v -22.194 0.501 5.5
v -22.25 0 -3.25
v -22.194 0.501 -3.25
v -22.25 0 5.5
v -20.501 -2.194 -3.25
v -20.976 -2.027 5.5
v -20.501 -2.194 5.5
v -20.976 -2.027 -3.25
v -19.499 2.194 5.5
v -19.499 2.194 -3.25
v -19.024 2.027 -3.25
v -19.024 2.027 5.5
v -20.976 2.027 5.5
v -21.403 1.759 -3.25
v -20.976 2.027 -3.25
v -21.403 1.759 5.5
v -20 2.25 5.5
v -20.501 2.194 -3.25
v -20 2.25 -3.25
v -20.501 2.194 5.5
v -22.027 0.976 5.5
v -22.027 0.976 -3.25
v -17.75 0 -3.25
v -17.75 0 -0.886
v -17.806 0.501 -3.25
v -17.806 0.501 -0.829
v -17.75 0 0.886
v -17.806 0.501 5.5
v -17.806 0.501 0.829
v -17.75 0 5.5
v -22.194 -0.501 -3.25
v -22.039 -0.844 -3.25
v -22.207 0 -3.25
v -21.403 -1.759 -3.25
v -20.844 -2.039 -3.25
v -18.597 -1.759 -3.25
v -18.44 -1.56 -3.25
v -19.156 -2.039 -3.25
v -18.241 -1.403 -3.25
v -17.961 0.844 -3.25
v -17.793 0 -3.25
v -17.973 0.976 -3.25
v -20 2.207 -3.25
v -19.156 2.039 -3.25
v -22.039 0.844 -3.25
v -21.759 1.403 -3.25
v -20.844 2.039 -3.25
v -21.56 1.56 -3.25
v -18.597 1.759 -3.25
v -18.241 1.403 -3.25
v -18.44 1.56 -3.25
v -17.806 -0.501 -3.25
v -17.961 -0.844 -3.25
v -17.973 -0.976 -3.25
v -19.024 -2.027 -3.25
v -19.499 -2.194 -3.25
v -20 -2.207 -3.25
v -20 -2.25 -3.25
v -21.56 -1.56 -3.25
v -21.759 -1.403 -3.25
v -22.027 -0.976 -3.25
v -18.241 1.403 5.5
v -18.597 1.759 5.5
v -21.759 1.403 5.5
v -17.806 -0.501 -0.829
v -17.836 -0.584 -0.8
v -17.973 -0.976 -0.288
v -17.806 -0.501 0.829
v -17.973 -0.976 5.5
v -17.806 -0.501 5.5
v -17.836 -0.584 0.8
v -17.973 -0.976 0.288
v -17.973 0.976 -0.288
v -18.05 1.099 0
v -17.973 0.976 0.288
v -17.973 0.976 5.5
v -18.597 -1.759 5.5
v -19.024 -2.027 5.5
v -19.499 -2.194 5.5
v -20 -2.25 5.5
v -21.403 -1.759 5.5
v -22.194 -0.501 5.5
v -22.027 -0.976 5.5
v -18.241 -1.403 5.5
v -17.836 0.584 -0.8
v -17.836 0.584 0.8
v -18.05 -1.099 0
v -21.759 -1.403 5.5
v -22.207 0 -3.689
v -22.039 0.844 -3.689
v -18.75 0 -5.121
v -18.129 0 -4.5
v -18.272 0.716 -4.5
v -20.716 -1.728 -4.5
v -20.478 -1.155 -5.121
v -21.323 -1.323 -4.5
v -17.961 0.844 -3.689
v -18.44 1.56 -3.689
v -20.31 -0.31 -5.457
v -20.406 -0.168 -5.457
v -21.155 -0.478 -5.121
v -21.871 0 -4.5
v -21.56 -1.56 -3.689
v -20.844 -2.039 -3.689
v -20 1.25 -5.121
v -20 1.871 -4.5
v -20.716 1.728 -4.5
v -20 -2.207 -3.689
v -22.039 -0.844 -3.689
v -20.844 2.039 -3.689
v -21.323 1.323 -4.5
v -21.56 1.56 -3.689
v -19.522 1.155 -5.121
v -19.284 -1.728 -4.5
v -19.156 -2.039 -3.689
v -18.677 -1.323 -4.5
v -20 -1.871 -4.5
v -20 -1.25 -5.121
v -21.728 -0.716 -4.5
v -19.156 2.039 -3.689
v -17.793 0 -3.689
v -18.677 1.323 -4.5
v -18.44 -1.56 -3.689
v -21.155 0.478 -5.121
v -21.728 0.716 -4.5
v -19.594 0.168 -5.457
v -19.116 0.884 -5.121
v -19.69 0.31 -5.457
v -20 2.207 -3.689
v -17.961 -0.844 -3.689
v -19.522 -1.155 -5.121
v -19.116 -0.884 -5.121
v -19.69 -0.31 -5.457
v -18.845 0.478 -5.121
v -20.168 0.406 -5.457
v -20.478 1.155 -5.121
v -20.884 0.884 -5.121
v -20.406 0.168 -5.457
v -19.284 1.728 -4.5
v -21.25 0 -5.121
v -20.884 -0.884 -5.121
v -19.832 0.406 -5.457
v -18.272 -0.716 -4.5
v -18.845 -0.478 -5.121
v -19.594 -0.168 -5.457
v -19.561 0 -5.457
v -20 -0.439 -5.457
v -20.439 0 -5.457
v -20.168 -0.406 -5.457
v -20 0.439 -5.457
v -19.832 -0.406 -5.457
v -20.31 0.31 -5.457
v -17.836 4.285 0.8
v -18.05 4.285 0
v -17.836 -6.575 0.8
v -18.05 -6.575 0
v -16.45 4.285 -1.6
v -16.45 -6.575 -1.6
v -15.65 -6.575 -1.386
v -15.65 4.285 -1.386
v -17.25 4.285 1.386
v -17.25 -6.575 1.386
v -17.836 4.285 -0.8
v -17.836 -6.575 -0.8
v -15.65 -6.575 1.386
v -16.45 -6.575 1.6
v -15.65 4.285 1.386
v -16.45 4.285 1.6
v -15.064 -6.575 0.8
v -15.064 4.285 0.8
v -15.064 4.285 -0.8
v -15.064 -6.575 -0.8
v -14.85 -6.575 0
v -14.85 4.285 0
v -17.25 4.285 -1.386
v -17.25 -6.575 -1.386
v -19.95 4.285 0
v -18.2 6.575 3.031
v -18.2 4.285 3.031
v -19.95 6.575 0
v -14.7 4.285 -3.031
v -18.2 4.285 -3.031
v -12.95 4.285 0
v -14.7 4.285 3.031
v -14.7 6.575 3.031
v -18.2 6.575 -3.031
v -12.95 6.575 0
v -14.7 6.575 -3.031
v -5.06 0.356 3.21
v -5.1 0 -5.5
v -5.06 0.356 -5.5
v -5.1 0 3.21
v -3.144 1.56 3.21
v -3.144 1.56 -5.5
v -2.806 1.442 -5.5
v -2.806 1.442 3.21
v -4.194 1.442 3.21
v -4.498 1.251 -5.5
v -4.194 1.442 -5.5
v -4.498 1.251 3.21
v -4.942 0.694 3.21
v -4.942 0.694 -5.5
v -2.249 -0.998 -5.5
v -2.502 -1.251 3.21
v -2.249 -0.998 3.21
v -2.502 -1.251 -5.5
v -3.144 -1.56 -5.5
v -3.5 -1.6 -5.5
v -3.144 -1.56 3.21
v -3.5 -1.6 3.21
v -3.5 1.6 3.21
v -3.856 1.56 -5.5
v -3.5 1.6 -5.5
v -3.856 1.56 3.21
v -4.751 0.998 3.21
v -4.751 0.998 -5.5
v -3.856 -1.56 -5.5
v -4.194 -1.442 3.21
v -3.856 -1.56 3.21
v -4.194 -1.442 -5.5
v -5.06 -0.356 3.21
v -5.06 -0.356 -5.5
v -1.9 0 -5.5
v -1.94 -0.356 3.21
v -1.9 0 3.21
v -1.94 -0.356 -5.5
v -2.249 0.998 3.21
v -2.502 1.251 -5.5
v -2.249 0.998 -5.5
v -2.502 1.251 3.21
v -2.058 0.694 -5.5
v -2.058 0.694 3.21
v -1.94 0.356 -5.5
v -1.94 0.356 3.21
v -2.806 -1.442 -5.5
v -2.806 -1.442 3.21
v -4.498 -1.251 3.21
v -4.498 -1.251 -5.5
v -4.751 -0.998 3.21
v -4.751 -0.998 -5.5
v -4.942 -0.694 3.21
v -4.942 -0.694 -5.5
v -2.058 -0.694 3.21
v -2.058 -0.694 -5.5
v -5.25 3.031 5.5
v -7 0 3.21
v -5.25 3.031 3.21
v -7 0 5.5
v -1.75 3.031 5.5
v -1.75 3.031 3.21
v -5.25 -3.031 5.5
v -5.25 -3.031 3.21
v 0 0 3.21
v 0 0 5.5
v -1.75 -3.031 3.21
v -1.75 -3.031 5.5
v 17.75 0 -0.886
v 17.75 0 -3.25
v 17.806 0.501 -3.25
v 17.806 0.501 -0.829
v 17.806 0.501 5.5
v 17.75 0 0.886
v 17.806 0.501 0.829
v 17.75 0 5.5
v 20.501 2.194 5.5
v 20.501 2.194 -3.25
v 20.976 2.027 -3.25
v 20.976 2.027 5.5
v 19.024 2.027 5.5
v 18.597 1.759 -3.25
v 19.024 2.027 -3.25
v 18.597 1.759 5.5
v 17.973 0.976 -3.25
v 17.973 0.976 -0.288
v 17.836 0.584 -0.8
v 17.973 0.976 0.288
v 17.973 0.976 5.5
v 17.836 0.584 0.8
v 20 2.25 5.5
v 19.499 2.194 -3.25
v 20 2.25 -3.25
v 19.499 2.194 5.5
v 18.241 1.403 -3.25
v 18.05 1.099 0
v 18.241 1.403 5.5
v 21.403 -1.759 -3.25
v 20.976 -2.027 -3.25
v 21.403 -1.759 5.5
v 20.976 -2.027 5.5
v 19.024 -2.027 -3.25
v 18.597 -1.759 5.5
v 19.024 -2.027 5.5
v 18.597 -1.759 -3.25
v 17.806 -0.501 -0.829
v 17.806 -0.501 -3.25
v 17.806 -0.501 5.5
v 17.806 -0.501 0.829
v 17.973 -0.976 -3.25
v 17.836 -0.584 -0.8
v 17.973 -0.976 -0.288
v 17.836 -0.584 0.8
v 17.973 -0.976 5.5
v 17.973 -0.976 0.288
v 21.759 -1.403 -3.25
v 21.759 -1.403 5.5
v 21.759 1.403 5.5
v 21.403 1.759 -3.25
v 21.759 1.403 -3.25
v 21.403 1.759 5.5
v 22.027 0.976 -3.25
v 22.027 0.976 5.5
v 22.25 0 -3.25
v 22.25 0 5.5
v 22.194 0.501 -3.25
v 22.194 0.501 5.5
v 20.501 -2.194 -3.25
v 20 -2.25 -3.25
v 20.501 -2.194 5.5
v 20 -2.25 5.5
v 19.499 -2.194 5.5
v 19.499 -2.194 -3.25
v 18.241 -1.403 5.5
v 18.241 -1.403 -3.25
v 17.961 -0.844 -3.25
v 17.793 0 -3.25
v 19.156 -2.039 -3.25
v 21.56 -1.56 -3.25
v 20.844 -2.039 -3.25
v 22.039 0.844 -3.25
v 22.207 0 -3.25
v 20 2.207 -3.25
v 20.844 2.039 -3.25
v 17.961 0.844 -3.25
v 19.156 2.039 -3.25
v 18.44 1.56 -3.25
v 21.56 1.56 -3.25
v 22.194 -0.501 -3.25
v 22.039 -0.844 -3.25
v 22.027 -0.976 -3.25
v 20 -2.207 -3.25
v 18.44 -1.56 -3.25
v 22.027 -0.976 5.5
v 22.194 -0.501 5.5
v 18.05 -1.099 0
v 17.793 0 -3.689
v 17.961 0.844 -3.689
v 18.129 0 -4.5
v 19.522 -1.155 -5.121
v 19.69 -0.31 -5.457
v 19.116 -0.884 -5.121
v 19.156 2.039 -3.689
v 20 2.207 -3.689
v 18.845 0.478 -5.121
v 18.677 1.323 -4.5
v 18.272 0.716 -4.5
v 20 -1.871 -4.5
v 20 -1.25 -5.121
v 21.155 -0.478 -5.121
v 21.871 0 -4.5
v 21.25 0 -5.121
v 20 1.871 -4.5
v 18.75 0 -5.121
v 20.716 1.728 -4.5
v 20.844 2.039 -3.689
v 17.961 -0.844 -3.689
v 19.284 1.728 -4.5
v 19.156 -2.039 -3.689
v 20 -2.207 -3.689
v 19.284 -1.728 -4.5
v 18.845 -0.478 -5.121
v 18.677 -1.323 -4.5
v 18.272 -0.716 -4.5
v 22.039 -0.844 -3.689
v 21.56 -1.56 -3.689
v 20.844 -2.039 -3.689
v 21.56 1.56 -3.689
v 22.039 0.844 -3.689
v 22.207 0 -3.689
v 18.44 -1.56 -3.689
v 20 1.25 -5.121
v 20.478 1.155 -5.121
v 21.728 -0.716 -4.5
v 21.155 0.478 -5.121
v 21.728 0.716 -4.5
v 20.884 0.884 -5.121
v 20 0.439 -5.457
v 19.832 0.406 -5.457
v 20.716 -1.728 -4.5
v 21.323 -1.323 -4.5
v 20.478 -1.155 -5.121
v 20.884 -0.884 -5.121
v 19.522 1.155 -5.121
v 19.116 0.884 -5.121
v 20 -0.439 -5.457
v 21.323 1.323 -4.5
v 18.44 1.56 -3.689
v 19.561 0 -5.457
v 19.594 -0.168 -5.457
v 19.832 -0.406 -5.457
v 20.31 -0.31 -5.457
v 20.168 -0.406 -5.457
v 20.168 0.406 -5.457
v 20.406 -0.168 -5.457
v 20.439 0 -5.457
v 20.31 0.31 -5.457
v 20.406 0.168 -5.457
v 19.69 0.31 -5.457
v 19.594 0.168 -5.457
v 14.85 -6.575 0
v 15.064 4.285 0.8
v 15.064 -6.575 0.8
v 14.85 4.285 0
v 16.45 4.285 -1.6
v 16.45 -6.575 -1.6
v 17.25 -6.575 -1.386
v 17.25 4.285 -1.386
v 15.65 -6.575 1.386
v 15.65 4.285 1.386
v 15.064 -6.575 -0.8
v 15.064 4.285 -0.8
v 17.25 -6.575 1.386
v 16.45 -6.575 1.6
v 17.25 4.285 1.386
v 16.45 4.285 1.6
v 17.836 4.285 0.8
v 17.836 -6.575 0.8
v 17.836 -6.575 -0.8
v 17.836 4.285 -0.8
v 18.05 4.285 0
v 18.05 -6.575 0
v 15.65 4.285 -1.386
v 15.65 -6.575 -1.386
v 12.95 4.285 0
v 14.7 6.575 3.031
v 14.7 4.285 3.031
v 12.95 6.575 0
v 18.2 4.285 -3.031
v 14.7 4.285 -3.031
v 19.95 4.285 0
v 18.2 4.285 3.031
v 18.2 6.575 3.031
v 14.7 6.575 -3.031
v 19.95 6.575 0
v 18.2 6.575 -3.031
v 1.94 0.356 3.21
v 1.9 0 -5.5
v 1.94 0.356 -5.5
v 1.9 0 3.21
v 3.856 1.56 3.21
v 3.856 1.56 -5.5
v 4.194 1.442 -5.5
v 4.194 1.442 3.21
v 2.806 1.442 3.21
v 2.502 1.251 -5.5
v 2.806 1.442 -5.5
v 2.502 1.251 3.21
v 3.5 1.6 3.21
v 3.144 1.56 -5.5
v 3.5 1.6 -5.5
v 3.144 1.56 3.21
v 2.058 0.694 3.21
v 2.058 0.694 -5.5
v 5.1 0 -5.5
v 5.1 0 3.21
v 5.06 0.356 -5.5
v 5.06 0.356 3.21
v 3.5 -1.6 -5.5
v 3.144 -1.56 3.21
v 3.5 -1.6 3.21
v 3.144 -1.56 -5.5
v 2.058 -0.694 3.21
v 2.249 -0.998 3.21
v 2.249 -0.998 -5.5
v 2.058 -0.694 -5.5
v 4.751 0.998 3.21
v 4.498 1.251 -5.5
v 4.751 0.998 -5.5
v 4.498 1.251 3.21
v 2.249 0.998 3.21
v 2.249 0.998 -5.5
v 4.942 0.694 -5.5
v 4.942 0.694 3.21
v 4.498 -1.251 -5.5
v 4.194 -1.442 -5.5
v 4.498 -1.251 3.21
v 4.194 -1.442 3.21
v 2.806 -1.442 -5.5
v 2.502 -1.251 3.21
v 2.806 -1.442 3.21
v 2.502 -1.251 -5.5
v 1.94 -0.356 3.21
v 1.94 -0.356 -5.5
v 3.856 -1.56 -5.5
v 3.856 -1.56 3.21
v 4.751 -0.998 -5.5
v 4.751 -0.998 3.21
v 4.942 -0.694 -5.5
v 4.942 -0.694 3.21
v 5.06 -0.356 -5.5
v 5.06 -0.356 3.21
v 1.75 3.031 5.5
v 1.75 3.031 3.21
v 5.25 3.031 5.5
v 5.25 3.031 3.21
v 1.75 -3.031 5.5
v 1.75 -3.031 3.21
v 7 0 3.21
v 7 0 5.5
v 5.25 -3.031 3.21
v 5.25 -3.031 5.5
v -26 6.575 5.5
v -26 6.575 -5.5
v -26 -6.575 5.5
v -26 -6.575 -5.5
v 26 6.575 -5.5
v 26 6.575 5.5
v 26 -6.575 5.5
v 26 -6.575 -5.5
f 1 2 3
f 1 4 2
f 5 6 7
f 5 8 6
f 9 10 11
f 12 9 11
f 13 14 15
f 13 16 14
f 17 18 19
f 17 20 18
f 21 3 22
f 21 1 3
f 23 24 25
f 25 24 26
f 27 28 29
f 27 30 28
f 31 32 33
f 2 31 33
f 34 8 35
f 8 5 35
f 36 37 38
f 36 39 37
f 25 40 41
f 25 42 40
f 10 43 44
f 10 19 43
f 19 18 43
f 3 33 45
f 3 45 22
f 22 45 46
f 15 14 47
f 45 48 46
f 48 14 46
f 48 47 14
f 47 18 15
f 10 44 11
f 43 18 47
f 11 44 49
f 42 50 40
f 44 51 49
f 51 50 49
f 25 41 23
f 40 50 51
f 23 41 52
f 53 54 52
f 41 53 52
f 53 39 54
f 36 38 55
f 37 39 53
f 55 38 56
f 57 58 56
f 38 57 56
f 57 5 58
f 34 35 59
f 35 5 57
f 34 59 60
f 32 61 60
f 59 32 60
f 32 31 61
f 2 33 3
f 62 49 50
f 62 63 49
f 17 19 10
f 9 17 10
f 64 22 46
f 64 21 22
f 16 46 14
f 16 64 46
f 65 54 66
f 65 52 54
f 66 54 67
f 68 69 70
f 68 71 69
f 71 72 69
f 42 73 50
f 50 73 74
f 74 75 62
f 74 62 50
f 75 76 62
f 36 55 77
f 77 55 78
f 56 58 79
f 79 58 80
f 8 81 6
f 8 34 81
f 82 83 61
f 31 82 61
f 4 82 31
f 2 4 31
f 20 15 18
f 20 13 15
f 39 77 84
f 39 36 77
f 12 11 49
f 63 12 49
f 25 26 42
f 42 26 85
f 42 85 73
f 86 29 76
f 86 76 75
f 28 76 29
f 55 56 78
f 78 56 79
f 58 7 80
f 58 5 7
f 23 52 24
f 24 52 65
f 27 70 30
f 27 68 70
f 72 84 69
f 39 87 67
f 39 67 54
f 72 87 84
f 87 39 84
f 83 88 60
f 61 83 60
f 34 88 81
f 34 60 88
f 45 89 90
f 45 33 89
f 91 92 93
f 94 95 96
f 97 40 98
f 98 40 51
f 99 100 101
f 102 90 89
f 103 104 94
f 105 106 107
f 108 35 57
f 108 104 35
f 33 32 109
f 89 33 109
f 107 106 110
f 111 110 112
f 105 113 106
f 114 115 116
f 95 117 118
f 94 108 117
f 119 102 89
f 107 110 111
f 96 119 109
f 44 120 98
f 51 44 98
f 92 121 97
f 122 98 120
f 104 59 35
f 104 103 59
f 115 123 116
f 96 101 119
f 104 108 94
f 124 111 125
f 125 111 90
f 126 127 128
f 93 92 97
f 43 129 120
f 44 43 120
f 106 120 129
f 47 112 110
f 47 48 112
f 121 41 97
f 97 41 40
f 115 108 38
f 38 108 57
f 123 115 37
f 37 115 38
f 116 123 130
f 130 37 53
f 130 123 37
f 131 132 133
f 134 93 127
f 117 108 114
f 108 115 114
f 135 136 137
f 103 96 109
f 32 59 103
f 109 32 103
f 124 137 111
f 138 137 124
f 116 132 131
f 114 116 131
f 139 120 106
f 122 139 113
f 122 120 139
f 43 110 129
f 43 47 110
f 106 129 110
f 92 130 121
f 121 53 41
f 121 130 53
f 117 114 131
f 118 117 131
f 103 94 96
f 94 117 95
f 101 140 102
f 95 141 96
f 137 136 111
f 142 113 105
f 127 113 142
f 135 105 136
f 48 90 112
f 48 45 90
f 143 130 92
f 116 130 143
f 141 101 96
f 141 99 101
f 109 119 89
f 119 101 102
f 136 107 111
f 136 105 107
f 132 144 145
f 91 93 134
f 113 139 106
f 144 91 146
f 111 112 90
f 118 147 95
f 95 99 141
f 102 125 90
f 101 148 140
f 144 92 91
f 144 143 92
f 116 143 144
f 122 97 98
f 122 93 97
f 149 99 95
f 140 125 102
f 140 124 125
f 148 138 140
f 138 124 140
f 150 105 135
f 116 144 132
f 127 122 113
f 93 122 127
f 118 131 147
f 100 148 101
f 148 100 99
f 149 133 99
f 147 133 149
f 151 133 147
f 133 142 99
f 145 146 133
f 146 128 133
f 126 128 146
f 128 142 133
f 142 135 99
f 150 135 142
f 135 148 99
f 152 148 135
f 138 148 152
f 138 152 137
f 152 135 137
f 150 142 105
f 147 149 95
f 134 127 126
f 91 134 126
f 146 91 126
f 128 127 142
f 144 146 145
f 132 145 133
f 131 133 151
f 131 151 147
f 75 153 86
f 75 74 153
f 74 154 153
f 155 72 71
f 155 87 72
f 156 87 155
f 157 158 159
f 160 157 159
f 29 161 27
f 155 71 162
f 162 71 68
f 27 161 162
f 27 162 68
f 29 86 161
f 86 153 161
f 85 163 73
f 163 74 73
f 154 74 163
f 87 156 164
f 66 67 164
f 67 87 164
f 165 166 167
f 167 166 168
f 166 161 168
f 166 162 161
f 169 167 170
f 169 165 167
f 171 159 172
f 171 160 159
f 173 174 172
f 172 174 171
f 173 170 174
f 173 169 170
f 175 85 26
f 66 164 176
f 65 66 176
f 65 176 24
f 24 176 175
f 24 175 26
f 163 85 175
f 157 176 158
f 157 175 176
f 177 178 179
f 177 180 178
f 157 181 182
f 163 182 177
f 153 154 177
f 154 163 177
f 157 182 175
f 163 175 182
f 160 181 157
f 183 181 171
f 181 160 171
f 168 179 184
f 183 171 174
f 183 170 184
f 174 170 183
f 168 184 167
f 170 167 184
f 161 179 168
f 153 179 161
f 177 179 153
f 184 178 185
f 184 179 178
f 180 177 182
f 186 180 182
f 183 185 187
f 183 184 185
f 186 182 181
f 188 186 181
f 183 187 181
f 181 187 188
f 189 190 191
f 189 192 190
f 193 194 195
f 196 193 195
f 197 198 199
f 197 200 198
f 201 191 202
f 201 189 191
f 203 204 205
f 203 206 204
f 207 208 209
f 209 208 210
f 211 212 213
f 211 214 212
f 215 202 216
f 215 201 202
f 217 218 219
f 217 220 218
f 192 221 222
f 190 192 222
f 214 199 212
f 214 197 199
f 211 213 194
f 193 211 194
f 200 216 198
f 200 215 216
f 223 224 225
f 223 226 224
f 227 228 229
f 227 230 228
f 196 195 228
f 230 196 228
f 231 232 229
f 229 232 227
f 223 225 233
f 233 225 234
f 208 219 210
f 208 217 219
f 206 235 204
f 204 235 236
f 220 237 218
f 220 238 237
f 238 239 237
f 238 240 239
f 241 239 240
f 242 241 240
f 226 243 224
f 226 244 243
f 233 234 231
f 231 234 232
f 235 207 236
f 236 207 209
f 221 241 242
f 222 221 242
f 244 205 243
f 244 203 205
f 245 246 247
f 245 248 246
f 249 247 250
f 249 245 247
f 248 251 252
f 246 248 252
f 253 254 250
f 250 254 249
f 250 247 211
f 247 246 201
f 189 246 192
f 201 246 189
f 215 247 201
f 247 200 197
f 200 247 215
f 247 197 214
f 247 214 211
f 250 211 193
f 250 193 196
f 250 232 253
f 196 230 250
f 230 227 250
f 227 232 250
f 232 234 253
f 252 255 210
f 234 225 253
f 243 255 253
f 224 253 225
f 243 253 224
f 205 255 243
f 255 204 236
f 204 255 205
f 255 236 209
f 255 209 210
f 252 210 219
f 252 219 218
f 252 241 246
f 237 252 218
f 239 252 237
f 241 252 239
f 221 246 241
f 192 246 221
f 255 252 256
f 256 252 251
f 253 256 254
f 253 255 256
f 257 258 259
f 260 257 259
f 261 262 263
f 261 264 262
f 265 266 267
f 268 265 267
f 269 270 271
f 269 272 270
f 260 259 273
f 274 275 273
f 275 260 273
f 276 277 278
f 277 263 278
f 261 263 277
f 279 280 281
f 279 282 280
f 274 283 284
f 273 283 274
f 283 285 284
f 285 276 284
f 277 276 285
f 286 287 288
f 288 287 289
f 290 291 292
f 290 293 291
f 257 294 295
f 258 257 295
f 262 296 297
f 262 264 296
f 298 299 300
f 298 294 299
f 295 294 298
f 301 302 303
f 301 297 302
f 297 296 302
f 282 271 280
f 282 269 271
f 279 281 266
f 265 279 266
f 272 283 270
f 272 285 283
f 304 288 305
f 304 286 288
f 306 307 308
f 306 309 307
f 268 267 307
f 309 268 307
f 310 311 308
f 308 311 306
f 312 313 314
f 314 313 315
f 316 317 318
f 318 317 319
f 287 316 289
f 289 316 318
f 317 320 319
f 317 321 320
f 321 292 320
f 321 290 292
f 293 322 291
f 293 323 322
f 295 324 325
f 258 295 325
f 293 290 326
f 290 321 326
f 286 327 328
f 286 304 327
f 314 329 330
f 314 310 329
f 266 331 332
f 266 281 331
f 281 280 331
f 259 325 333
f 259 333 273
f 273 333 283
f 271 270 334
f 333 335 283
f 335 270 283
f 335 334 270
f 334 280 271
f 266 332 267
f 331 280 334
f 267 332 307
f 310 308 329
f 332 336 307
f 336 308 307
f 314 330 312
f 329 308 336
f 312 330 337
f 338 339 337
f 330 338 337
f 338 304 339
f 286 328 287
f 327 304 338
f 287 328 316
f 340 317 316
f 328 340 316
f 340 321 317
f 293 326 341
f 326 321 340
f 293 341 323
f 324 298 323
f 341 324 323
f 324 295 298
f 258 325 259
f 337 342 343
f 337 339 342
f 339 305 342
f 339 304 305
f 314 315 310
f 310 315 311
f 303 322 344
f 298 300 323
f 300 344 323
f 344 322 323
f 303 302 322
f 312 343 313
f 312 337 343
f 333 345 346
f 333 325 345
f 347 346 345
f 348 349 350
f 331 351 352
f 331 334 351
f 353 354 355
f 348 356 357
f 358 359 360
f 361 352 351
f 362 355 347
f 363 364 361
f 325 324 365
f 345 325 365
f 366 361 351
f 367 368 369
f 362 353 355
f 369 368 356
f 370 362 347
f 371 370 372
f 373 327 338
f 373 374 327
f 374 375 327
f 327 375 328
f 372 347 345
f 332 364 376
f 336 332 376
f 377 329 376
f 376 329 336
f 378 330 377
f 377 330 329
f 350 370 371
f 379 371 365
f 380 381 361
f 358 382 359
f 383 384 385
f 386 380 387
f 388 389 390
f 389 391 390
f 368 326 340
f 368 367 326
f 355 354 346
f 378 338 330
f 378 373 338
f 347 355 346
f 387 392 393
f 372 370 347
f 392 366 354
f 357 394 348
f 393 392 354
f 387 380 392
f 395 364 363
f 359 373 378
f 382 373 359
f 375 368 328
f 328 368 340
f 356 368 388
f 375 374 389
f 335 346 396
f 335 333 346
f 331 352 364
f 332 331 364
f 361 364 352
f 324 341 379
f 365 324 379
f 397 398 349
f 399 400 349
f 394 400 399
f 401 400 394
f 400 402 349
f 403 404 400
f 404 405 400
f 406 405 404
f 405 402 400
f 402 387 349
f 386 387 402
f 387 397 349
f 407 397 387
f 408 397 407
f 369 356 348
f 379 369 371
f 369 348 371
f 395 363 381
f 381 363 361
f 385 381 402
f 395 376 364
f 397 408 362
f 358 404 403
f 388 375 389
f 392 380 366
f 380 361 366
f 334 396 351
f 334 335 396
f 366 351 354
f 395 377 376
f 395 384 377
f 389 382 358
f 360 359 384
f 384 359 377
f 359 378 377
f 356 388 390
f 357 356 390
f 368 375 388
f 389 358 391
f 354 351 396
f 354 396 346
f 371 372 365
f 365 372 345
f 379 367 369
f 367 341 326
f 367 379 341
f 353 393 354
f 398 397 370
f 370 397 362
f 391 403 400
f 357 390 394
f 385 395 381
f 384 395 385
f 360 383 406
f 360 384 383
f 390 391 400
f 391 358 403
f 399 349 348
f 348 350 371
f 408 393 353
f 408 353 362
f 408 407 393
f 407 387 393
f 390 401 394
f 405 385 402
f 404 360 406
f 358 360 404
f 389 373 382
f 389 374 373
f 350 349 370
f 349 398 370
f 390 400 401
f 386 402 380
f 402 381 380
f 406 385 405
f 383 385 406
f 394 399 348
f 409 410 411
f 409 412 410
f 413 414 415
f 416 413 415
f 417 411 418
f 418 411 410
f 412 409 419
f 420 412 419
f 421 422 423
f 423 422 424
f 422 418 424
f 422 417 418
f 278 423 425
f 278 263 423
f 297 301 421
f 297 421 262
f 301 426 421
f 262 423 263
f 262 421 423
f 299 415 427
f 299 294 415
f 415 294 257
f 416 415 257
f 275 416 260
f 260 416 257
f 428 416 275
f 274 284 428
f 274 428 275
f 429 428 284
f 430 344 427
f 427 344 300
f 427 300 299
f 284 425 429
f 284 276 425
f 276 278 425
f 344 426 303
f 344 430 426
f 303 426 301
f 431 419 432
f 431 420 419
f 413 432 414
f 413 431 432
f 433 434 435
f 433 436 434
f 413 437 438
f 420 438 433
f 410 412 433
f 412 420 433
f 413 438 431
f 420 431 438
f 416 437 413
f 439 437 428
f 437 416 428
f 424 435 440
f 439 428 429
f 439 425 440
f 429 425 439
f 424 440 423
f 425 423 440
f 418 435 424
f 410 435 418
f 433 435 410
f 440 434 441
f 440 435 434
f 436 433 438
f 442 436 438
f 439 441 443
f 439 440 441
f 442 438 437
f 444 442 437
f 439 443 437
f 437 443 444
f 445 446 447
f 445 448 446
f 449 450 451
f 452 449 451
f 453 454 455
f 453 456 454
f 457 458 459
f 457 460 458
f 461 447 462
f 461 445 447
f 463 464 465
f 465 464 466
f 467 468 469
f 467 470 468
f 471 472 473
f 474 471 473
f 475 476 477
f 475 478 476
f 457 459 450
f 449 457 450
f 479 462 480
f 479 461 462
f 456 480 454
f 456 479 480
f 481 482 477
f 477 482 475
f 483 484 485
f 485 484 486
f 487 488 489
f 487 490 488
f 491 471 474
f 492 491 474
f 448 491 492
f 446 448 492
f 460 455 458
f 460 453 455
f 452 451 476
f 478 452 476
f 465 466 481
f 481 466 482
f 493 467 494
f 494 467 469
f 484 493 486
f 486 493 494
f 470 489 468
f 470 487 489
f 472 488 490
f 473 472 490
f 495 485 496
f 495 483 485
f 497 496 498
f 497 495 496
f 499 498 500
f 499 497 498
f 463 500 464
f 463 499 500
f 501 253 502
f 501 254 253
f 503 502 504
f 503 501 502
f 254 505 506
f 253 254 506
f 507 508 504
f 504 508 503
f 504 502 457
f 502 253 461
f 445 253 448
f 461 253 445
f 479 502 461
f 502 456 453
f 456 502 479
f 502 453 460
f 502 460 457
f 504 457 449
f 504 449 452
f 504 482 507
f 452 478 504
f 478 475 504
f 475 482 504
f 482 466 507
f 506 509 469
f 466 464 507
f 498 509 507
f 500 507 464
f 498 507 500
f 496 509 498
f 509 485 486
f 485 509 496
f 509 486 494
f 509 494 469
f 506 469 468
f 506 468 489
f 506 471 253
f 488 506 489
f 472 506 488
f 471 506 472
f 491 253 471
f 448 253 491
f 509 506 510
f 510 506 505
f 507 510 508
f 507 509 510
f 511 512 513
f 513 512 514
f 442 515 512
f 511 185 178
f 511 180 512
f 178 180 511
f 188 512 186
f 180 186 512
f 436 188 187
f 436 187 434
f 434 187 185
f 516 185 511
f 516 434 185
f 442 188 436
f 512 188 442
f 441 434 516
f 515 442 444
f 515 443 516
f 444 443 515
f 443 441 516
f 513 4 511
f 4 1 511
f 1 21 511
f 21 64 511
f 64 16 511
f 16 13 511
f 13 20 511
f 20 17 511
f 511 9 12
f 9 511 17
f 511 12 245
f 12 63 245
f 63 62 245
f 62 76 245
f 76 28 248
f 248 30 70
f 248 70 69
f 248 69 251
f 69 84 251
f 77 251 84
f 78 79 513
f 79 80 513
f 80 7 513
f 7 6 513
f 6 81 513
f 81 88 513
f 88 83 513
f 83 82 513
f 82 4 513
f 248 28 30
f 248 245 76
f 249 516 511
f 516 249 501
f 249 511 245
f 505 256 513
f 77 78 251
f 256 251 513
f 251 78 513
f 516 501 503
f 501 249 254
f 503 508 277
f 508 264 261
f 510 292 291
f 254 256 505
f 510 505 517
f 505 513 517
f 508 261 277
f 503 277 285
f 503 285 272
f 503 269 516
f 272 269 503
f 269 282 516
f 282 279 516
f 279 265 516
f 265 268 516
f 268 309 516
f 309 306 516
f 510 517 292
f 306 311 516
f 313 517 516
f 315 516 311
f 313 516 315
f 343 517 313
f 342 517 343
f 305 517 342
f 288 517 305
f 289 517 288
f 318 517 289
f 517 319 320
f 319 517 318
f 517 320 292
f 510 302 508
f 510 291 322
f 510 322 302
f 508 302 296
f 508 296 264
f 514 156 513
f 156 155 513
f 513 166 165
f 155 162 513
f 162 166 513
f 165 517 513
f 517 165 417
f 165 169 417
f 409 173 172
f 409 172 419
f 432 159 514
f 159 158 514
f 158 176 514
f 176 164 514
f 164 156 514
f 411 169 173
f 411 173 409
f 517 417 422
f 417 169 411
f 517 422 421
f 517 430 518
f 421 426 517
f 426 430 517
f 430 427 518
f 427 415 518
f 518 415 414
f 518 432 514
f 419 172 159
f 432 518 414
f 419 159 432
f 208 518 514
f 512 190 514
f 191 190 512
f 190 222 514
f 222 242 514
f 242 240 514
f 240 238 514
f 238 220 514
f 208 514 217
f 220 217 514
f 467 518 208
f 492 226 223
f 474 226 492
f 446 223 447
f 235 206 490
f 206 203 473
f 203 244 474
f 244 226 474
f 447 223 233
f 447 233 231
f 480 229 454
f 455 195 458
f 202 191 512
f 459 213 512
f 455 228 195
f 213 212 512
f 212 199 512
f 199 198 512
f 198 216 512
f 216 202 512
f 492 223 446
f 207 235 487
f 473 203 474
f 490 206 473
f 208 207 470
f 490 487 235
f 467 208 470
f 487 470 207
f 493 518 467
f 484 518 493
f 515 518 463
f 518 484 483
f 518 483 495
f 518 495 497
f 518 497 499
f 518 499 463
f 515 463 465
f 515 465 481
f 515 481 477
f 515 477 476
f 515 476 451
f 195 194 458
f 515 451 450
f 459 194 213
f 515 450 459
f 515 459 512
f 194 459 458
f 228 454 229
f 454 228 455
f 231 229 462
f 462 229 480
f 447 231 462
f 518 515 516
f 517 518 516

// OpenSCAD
// for spacing rods and using fan-screw-holes as slider bearings

rotate([180,0,0]) rodholder();

module rodholder(alubar_inside=13.15, inside_ht=11, space=40, hole_D=4.5, length=52){
    difference(){
        cube([length, alubar_inside, inside_ht], center=true);
        for (i=[-1,1]){
            translate([space/2*i, 0,-hole_D/2]){
                cylinder(r=hole_D/2, h=inside_ht, $fn=28, center=true);
                translate([0,0,inside_ht/2])
                    sphere(r=hole_D/2, $fn=16, center=true);
            }
            translate([(space/2- hole_D/2 - 1.3)*i, 0,0]) rotate([90,0,0]){
                cylinder(r=1.6, h=alubar_inside+1, $fn=12, center=true);
                translate([0,0, alubar_inside/2 - 1.14])
                    cylinder(r=3.5, h=2.3, $fn=6, center=true);
            }
            translate([3.5*i, 0,0]){
                cylinder(r=1.6, h=inside_ht+1, $fn=28, center=true);
                translate([0,0,-inside_ht/2+1.14])
                    cylinder(r=3.5, h=2.3, $fn=6, center=true);
            }
        }
    }
}
